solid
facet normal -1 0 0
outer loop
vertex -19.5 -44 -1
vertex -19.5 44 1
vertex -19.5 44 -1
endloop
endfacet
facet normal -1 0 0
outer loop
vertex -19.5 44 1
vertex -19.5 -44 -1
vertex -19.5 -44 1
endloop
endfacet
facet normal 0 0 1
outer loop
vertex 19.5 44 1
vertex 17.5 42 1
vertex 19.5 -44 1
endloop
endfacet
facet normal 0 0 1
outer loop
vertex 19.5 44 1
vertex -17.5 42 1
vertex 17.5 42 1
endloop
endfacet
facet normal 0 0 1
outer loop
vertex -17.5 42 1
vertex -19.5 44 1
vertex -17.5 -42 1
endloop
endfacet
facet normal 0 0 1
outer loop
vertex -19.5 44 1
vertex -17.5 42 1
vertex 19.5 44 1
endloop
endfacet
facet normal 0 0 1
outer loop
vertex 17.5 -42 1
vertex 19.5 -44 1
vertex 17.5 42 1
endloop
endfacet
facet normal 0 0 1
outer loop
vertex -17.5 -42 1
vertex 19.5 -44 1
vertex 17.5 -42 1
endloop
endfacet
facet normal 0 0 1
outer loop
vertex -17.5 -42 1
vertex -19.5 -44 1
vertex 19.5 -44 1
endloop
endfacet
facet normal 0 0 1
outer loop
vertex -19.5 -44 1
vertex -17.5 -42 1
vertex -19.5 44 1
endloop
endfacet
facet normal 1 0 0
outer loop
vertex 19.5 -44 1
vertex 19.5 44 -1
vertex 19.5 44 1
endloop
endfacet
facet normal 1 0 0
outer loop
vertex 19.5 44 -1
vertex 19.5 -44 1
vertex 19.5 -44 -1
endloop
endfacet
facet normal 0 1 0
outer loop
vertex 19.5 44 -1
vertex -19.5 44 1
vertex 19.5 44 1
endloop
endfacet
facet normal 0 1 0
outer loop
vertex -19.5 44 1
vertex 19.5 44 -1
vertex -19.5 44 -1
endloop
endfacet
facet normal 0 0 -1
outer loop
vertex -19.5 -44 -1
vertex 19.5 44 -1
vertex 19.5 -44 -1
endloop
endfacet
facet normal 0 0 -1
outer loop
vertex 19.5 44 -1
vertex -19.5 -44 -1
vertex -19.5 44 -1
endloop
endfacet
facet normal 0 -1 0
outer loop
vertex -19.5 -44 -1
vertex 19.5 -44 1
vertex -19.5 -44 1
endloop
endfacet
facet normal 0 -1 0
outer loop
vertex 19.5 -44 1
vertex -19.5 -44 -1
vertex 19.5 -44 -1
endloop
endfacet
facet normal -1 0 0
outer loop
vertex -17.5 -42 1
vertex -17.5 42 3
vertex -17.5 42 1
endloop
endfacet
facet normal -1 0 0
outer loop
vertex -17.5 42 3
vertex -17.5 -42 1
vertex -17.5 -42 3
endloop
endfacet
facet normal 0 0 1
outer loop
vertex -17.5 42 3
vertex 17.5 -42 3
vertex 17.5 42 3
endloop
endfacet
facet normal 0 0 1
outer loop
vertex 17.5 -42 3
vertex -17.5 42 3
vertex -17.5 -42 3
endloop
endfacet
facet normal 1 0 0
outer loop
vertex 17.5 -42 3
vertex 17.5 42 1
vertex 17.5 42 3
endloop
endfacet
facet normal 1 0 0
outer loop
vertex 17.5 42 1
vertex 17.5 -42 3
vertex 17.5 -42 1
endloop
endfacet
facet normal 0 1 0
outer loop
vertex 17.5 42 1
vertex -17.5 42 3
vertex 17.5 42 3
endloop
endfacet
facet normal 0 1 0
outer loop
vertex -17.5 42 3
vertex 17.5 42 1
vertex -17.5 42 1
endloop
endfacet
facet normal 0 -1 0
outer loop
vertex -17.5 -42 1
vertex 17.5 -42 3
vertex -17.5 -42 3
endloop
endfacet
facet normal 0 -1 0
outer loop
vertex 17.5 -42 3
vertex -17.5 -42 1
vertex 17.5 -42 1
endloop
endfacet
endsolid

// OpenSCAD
esp8266Depth = 48;
uln2003Depth = 34;
wallThickness = 2;

insideWidth = 35;
insideDepth = 82 + /* Divider */ wallThickness;
insideHeight = 25;


caseWidth = insideWidth + (wallThickness * 2);
caseDepth = insideDepth + (wallThickness * 2);
caseHeight = insideHeight + wallThickness;

cube([caseWidth, caseDepth, wallThickness], center = true);
translate([0, 0, wallThickness]) {
    cube([insideWidth, insideDepth, wallThickness], center = true);
}
